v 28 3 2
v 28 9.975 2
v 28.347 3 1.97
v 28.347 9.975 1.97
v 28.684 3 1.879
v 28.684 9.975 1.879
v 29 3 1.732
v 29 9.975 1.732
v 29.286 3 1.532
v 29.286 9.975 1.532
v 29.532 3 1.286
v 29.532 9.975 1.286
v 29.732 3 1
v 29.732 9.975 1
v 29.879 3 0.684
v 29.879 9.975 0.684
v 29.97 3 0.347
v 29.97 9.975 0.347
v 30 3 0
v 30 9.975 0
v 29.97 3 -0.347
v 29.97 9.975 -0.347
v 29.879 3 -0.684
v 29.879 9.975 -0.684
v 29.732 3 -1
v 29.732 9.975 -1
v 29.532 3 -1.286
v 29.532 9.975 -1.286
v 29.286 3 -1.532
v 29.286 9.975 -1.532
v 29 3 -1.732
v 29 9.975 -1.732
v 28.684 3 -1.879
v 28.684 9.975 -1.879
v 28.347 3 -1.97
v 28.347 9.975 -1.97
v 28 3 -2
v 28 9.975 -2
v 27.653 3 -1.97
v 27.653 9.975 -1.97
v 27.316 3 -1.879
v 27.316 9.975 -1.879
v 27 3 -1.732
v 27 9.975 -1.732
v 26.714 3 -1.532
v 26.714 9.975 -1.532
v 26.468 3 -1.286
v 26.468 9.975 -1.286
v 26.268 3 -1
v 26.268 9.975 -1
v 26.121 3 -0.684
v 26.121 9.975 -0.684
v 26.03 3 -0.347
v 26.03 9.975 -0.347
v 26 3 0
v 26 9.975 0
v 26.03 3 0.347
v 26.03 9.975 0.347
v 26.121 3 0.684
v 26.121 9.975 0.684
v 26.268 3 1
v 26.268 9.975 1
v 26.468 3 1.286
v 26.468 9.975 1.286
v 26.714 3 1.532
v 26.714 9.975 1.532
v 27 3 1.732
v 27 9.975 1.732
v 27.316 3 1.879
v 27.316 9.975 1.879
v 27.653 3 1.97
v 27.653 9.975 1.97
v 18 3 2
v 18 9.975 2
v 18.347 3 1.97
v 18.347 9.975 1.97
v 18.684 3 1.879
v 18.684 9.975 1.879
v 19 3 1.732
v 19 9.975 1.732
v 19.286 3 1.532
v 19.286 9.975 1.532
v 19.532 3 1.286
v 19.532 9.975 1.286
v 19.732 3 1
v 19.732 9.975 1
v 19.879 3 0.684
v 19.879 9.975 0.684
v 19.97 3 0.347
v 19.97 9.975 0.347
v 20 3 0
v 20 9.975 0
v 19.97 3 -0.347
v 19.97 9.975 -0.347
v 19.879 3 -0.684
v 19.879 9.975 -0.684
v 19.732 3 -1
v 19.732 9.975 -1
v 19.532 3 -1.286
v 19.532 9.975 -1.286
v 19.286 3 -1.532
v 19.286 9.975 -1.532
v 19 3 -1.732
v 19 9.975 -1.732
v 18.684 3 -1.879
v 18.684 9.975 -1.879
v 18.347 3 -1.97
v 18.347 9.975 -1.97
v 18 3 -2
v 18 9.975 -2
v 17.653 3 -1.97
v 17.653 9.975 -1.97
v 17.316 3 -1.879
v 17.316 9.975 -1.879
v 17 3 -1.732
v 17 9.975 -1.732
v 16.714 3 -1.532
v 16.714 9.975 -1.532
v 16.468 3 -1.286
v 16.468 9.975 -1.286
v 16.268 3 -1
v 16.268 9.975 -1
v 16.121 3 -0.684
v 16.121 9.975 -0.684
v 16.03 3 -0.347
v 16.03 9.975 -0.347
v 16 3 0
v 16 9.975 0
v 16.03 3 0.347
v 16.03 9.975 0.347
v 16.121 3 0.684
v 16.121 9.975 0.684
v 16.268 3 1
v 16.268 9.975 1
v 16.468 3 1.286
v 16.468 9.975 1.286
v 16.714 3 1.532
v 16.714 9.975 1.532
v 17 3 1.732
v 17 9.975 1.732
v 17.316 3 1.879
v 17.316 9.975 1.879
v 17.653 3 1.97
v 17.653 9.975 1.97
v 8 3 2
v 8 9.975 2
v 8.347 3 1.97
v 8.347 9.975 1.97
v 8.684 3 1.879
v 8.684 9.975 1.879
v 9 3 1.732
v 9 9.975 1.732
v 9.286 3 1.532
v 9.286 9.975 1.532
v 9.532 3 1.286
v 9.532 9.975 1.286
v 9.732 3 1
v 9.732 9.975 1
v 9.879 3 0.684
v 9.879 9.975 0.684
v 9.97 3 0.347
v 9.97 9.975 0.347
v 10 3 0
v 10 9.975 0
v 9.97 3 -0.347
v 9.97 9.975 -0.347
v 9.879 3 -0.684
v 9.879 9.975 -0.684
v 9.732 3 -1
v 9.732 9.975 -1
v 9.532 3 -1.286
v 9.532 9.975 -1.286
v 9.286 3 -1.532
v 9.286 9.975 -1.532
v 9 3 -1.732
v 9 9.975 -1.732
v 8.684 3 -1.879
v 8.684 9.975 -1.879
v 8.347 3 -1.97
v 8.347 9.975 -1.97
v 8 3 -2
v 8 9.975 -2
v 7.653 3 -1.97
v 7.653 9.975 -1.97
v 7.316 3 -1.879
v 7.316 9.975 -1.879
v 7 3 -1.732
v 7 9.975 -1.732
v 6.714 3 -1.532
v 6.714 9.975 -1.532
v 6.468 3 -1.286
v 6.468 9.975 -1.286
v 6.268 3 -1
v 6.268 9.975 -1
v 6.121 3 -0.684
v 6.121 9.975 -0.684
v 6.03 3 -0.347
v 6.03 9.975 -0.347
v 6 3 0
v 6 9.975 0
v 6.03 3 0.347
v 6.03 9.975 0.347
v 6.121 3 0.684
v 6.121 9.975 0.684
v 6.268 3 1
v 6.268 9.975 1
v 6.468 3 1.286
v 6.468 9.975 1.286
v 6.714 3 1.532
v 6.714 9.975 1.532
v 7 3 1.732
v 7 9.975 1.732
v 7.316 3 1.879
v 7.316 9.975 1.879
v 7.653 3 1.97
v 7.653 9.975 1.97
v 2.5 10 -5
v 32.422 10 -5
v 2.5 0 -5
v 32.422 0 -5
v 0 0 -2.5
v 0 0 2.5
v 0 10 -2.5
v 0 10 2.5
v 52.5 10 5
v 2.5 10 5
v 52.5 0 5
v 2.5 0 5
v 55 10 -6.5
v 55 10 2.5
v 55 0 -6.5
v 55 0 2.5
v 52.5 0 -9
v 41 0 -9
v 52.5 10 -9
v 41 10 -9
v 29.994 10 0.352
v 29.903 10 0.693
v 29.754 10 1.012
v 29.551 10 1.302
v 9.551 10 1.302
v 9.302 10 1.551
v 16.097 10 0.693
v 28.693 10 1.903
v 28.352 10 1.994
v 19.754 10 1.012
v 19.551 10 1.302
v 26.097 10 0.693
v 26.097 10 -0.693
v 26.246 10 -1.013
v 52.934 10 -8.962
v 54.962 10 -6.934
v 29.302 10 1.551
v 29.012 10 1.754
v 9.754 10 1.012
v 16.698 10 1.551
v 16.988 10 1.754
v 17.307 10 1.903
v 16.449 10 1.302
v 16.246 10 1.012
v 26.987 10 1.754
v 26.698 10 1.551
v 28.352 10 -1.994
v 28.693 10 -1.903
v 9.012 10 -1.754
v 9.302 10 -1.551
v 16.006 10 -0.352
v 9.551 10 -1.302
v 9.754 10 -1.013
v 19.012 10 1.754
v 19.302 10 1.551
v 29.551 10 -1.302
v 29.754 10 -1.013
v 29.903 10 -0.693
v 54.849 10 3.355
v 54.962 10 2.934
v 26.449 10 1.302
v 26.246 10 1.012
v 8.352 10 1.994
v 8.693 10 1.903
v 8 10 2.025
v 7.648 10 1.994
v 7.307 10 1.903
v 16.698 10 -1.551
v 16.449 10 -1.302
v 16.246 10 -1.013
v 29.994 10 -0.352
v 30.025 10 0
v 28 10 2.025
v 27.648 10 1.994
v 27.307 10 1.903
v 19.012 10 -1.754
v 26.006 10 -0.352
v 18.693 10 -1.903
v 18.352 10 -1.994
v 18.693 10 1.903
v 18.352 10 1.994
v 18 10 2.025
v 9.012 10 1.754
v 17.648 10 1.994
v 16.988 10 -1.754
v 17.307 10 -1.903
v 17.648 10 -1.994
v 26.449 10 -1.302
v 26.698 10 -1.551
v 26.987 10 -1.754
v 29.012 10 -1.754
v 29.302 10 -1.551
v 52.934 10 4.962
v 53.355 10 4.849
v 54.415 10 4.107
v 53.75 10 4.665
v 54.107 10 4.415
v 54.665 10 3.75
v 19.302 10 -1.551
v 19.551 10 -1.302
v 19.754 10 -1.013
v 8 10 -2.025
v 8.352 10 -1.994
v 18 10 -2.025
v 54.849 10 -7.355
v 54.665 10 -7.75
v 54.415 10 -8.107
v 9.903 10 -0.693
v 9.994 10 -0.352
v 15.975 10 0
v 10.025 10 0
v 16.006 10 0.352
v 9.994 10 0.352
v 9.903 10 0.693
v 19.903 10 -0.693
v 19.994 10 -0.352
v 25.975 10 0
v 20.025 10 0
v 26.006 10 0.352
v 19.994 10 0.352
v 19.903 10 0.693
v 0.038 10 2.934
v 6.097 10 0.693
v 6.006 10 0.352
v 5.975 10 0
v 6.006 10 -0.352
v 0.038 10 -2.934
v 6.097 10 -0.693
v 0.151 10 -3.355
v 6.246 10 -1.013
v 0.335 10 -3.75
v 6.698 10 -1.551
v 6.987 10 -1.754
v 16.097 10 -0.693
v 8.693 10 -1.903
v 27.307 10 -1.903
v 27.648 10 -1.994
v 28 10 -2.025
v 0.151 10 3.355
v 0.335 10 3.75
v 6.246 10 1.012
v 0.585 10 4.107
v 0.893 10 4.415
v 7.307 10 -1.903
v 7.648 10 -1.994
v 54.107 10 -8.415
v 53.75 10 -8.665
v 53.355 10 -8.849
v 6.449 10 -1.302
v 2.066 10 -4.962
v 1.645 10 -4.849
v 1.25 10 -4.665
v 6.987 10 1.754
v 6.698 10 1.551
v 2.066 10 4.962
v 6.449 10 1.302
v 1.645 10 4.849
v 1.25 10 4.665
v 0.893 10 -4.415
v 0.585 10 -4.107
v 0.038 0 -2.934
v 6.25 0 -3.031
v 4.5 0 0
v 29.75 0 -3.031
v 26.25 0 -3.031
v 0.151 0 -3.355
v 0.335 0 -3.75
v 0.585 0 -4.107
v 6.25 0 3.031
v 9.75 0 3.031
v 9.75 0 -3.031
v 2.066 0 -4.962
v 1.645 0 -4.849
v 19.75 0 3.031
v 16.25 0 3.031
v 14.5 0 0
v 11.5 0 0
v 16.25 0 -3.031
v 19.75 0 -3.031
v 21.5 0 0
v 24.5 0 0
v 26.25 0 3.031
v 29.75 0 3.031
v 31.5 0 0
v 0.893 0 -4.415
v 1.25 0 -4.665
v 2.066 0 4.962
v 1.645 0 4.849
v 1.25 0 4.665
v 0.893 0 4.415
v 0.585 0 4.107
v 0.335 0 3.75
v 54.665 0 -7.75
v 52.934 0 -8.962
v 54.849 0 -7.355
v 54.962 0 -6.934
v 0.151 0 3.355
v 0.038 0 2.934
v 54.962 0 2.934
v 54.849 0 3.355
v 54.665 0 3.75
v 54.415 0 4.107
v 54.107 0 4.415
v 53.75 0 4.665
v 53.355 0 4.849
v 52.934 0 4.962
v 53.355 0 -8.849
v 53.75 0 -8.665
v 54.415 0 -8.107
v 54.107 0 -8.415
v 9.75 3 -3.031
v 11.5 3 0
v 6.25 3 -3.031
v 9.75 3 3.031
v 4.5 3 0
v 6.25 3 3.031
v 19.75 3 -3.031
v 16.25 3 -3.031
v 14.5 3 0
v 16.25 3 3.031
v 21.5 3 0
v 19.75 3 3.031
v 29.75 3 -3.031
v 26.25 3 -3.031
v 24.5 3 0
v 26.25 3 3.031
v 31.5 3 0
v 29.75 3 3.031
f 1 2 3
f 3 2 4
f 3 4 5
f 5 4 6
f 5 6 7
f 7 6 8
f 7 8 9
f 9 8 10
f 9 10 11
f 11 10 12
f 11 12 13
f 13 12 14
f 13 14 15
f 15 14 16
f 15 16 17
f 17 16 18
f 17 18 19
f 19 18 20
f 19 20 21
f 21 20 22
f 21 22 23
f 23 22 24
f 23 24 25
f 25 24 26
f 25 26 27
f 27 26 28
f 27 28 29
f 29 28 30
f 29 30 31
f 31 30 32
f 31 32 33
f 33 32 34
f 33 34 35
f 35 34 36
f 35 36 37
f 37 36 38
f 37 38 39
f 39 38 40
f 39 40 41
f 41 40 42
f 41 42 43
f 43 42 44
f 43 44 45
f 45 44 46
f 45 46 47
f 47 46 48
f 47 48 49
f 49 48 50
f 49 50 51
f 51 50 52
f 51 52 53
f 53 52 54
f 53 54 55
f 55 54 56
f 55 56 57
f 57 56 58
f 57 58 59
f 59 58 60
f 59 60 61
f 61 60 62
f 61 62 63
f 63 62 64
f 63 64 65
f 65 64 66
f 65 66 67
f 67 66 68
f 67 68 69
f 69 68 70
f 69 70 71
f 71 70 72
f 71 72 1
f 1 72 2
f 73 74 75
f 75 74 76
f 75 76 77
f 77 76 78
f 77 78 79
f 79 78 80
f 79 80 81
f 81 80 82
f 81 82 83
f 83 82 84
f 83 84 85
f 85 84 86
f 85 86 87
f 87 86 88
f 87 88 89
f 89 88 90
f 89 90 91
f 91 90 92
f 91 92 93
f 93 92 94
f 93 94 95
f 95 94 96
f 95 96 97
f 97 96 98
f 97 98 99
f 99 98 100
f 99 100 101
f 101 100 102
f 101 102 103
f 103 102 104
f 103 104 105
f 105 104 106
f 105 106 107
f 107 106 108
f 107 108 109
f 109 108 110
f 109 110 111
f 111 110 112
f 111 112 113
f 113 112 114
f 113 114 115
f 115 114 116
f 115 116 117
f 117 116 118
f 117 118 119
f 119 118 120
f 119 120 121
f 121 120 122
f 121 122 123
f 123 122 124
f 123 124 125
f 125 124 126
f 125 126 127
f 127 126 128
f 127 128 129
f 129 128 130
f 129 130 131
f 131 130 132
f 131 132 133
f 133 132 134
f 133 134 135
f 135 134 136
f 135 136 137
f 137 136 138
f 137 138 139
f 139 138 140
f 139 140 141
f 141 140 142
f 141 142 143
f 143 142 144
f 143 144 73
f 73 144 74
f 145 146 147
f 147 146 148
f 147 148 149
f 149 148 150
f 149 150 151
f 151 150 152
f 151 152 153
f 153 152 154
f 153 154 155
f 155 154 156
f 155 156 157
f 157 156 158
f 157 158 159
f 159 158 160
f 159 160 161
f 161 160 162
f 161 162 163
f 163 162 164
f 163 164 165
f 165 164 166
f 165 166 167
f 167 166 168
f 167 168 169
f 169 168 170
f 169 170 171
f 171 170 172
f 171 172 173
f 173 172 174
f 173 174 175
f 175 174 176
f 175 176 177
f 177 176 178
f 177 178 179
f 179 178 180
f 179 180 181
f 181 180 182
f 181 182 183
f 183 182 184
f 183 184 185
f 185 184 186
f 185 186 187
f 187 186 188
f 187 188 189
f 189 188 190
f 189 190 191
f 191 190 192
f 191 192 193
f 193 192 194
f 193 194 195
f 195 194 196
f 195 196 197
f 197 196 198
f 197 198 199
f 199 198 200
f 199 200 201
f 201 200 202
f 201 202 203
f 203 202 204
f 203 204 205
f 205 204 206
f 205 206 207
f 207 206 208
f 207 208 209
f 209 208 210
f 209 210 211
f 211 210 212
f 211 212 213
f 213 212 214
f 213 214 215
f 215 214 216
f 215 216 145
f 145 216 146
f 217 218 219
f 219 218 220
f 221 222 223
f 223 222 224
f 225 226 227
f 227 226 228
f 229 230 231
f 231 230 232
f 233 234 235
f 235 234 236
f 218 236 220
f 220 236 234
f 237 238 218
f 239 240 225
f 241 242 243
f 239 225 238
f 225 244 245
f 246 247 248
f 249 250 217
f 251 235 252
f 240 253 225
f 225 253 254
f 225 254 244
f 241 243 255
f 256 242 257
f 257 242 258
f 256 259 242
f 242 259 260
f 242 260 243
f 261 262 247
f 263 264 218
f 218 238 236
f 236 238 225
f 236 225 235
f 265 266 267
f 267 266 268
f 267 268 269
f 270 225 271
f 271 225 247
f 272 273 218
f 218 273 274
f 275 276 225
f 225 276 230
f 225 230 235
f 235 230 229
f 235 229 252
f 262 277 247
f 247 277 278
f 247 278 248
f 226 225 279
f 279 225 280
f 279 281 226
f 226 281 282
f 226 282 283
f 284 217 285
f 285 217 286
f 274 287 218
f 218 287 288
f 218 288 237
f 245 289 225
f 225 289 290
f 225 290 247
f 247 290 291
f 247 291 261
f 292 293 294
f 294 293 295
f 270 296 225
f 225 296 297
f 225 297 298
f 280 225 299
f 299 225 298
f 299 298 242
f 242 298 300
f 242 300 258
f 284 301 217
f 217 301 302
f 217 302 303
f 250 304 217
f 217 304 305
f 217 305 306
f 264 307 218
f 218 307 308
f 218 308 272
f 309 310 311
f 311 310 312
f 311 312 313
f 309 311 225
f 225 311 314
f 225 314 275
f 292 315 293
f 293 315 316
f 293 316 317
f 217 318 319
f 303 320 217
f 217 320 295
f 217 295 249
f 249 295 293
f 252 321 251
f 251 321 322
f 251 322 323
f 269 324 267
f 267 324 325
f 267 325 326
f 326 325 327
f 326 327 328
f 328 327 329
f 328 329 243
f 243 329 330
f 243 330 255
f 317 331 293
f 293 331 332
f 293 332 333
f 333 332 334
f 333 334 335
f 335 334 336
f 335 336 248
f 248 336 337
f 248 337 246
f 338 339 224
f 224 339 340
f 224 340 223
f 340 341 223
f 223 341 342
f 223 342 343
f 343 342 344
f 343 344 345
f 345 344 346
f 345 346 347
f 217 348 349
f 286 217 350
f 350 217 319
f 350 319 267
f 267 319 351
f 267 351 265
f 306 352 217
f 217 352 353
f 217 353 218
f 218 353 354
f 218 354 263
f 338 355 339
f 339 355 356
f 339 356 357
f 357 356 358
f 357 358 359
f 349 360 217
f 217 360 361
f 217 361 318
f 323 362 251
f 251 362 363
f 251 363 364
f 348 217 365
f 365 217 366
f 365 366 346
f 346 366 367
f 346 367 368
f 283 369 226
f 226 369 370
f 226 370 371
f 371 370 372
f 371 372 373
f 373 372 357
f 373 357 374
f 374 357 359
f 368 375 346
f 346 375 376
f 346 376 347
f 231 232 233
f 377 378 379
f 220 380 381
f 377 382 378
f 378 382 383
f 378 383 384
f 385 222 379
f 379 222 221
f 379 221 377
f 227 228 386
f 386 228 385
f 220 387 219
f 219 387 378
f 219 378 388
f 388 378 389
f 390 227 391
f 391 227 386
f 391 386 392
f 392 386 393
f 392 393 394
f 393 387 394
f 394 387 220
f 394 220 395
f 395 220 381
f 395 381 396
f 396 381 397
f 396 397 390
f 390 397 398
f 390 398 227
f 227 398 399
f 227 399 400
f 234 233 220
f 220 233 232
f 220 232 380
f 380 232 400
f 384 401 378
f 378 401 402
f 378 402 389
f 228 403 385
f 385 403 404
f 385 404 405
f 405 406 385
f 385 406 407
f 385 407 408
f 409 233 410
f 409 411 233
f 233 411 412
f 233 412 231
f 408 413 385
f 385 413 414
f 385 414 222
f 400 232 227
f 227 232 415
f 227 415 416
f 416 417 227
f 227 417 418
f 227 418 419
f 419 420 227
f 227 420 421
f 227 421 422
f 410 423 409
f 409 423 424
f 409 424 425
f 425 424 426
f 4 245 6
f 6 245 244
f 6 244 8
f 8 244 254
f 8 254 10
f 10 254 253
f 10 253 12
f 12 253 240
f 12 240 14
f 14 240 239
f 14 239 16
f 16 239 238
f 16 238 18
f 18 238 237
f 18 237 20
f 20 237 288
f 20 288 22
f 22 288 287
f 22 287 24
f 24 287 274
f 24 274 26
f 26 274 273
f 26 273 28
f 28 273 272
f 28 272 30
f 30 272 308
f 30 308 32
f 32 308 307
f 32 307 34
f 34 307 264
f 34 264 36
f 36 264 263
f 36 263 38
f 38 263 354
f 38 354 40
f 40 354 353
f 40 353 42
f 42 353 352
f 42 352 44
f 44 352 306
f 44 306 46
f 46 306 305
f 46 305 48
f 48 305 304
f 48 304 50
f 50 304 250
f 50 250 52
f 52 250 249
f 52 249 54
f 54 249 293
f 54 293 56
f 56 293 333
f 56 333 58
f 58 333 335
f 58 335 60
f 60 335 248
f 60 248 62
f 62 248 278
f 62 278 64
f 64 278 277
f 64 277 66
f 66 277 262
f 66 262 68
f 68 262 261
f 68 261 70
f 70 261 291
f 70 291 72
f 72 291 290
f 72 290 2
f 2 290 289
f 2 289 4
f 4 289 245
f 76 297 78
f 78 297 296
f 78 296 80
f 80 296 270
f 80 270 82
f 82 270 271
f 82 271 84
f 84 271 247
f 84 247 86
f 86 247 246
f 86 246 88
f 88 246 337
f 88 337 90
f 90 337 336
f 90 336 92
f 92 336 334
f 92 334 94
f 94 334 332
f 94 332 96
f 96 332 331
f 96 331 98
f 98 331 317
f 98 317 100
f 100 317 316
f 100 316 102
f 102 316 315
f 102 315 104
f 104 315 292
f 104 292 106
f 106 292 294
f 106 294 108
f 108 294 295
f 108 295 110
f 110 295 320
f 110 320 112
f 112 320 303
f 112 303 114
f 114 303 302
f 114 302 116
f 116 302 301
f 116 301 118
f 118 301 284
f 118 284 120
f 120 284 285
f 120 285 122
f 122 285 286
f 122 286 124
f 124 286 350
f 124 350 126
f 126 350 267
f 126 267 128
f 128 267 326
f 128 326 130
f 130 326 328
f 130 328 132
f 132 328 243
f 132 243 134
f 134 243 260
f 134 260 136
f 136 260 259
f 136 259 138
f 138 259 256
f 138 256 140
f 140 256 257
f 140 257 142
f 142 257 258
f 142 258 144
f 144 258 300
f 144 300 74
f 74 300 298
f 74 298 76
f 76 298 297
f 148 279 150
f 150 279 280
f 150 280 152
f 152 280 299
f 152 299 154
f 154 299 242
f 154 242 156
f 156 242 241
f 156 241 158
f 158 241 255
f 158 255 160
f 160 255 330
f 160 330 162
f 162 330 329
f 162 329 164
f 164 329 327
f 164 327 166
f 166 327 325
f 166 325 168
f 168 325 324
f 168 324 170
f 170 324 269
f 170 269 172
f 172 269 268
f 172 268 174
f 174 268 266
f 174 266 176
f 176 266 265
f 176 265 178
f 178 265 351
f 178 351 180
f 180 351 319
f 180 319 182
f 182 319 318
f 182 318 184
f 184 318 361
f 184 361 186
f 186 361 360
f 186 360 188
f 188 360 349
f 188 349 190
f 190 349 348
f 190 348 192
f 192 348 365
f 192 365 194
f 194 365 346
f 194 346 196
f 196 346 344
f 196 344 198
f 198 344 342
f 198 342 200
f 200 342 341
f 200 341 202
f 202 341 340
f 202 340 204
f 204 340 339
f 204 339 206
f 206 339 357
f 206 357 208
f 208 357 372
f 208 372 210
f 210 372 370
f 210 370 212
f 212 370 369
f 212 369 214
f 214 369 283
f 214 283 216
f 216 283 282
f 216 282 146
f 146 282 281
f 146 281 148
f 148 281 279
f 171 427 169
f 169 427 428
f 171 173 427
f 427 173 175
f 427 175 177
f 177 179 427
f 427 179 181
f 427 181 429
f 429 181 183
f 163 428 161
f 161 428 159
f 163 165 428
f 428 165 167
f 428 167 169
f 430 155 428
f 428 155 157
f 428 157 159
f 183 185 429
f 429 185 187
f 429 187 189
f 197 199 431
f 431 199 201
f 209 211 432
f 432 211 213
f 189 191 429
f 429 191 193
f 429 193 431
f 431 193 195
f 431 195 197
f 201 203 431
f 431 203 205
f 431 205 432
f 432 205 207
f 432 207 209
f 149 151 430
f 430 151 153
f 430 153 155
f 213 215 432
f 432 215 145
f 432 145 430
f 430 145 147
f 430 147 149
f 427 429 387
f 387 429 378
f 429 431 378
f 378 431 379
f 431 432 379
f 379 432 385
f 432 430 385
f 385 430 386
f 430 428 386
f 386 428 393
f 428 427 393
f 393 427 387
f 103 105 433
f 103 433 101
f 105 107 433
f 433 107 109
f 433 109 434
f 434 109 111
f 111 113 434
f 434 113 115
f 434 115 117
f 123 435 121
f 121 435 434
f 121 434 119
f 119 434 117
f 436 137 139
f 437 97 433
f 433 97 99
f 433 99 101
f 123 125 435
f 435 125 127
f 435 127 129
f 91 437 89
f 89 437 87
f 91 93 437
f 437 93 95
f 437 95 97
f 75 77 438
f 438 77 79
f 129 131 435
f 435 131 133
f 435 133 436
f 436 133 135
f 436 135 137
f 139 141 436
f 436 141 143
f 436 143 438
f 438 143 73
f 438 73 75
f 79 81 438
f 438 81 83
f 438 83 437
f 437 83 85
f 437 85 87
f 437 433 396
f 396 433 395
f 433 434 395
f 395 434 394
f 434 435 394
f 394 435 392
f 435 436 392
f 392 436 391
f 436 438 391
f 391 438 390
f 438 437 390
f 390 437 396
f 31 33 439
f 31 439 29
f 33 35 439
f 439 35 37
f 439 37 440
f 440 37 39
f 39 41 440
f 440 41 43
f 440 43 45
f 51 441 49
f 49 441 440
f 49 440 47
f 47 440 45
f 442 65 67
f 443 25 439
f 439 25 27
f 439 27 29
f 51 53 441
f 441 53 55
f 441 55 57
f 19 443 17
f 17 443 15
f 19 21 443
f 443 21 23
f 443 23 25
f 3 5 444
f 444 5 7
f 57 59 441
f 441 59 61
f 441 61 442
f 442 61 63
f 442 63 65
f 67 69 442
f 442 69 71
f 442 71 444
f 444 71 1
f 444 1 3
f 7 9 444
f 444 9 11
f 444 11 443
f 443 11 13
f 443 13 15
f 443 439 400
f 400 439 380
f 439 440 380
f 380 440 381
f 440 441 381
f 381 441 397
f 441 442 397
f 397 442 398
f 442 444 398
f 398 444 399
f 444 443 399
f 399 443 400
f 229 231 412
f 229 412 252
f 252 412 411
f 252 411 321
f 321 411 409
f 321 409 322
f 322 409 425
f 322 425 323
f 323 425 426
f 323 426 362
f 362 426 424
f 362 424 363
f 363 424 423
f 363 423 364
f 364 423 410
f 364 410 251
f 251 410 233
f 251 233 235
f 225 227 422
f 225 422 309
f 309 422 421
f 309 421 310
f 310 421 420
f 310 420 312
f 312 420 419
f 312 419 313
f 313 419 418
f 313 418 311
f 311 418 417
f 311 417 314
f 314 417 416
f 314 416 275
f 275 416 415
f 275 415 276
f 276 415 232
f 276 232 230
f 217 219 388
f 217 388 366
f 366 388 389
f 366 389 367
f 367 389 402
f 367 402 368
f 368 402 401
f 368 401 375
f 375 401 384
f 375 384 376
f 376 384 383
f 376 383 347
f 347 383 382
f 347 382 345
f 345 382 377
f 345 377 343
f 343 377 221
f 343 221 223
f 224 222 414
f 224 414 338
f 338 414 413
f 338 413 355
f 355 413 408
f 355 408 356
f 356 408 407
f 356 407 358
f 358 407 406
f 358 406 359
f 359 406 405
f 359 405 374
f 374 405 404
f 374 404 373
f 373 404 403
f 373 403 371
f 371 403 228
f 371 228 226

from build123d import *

# Parameters (mm, degrees)
BOSS_EXTRUDE1_DEPTH             = 10
F_4_0MM_DOWEL_HOLE1_D           = 4
F_4_0MM_DOWEL_HOLE1_CSINK_D     = 4.05
F_4_0MM_DOWEL_HOLE1_CSINK_ANGLE = 90
CUT_EXTRUDE1_DEPTH              = 3
FILLET1_R                       = 2.5


with BuildPart() as part:
    # Sketch1 → Boss-Extrude1 (new body)
    with BuildSketch(Plane(origin=(0, 0, 0), x_dir=(1, 0, 0), z_dir=(0, 1, 0))):
        Polygon((0, 5), (0, -5), (55, -5), (55, 9), (41, 9), (32.421972318, 5), align=None)
    extrude(amount=BOSS_EXTRUDE1_DEPTH)

    # Ø4.0mm Dowel Hole1 (through all)
    with Locations(Plane(origin=(0, 10, 0), x_dir=(1, 0, 0), z_dir=(0, 1, 0))):
        with Locations((8, 0), (18, 0), (28, 0)):
            CounterSinkHole(F_4_0MM_DOWEL_HOLE1_D / 2, F_4_0MM_DOWEL_HOLE1_CSINK_D / 2, counter_sink_angle=F_4_0MM_DOWEL_HOLE1_CSINK_ANGLE)

    # Sketch5 → Cut-Extrude1 (cut)
    with BuildSketch(Plane.XZ):
        Polygon((9.75, -3.031088913), (11.5, 0), (9.75, 3.031088913), (6.25, 3.031088913), (4.5, 0), (6.25, -3.031088913), align=None)
        Polygon((21.5, 0), (19.75, 3.031088913), (16.25, 3.031088913), (14.5, 0), (16.25, -3.031088913), (19.75, -3.031088913), align=None)
        Polygon((31.5, 0), (29.75, 3.031088913), (26.25, 3.031088913), (24.5, 0), (26.25, -3.031088913), (29.75, -3.031088913), align=None)
    extrude(amount=-CUT_EXTRUDE1_DEPTH, mode=Mode.SUBTRACT)

    # Fillet1
    fillet1_edges = [part.edges().sort_by_distance(p)[0] for p in [
        (55, 5, -9),
        (55, 5, 5),
        (0, 5, 5),
        (0, 5, -5),
    ]]
    fillet(fillet1_edges, radius=FILLET1_R)


solid = part.part
